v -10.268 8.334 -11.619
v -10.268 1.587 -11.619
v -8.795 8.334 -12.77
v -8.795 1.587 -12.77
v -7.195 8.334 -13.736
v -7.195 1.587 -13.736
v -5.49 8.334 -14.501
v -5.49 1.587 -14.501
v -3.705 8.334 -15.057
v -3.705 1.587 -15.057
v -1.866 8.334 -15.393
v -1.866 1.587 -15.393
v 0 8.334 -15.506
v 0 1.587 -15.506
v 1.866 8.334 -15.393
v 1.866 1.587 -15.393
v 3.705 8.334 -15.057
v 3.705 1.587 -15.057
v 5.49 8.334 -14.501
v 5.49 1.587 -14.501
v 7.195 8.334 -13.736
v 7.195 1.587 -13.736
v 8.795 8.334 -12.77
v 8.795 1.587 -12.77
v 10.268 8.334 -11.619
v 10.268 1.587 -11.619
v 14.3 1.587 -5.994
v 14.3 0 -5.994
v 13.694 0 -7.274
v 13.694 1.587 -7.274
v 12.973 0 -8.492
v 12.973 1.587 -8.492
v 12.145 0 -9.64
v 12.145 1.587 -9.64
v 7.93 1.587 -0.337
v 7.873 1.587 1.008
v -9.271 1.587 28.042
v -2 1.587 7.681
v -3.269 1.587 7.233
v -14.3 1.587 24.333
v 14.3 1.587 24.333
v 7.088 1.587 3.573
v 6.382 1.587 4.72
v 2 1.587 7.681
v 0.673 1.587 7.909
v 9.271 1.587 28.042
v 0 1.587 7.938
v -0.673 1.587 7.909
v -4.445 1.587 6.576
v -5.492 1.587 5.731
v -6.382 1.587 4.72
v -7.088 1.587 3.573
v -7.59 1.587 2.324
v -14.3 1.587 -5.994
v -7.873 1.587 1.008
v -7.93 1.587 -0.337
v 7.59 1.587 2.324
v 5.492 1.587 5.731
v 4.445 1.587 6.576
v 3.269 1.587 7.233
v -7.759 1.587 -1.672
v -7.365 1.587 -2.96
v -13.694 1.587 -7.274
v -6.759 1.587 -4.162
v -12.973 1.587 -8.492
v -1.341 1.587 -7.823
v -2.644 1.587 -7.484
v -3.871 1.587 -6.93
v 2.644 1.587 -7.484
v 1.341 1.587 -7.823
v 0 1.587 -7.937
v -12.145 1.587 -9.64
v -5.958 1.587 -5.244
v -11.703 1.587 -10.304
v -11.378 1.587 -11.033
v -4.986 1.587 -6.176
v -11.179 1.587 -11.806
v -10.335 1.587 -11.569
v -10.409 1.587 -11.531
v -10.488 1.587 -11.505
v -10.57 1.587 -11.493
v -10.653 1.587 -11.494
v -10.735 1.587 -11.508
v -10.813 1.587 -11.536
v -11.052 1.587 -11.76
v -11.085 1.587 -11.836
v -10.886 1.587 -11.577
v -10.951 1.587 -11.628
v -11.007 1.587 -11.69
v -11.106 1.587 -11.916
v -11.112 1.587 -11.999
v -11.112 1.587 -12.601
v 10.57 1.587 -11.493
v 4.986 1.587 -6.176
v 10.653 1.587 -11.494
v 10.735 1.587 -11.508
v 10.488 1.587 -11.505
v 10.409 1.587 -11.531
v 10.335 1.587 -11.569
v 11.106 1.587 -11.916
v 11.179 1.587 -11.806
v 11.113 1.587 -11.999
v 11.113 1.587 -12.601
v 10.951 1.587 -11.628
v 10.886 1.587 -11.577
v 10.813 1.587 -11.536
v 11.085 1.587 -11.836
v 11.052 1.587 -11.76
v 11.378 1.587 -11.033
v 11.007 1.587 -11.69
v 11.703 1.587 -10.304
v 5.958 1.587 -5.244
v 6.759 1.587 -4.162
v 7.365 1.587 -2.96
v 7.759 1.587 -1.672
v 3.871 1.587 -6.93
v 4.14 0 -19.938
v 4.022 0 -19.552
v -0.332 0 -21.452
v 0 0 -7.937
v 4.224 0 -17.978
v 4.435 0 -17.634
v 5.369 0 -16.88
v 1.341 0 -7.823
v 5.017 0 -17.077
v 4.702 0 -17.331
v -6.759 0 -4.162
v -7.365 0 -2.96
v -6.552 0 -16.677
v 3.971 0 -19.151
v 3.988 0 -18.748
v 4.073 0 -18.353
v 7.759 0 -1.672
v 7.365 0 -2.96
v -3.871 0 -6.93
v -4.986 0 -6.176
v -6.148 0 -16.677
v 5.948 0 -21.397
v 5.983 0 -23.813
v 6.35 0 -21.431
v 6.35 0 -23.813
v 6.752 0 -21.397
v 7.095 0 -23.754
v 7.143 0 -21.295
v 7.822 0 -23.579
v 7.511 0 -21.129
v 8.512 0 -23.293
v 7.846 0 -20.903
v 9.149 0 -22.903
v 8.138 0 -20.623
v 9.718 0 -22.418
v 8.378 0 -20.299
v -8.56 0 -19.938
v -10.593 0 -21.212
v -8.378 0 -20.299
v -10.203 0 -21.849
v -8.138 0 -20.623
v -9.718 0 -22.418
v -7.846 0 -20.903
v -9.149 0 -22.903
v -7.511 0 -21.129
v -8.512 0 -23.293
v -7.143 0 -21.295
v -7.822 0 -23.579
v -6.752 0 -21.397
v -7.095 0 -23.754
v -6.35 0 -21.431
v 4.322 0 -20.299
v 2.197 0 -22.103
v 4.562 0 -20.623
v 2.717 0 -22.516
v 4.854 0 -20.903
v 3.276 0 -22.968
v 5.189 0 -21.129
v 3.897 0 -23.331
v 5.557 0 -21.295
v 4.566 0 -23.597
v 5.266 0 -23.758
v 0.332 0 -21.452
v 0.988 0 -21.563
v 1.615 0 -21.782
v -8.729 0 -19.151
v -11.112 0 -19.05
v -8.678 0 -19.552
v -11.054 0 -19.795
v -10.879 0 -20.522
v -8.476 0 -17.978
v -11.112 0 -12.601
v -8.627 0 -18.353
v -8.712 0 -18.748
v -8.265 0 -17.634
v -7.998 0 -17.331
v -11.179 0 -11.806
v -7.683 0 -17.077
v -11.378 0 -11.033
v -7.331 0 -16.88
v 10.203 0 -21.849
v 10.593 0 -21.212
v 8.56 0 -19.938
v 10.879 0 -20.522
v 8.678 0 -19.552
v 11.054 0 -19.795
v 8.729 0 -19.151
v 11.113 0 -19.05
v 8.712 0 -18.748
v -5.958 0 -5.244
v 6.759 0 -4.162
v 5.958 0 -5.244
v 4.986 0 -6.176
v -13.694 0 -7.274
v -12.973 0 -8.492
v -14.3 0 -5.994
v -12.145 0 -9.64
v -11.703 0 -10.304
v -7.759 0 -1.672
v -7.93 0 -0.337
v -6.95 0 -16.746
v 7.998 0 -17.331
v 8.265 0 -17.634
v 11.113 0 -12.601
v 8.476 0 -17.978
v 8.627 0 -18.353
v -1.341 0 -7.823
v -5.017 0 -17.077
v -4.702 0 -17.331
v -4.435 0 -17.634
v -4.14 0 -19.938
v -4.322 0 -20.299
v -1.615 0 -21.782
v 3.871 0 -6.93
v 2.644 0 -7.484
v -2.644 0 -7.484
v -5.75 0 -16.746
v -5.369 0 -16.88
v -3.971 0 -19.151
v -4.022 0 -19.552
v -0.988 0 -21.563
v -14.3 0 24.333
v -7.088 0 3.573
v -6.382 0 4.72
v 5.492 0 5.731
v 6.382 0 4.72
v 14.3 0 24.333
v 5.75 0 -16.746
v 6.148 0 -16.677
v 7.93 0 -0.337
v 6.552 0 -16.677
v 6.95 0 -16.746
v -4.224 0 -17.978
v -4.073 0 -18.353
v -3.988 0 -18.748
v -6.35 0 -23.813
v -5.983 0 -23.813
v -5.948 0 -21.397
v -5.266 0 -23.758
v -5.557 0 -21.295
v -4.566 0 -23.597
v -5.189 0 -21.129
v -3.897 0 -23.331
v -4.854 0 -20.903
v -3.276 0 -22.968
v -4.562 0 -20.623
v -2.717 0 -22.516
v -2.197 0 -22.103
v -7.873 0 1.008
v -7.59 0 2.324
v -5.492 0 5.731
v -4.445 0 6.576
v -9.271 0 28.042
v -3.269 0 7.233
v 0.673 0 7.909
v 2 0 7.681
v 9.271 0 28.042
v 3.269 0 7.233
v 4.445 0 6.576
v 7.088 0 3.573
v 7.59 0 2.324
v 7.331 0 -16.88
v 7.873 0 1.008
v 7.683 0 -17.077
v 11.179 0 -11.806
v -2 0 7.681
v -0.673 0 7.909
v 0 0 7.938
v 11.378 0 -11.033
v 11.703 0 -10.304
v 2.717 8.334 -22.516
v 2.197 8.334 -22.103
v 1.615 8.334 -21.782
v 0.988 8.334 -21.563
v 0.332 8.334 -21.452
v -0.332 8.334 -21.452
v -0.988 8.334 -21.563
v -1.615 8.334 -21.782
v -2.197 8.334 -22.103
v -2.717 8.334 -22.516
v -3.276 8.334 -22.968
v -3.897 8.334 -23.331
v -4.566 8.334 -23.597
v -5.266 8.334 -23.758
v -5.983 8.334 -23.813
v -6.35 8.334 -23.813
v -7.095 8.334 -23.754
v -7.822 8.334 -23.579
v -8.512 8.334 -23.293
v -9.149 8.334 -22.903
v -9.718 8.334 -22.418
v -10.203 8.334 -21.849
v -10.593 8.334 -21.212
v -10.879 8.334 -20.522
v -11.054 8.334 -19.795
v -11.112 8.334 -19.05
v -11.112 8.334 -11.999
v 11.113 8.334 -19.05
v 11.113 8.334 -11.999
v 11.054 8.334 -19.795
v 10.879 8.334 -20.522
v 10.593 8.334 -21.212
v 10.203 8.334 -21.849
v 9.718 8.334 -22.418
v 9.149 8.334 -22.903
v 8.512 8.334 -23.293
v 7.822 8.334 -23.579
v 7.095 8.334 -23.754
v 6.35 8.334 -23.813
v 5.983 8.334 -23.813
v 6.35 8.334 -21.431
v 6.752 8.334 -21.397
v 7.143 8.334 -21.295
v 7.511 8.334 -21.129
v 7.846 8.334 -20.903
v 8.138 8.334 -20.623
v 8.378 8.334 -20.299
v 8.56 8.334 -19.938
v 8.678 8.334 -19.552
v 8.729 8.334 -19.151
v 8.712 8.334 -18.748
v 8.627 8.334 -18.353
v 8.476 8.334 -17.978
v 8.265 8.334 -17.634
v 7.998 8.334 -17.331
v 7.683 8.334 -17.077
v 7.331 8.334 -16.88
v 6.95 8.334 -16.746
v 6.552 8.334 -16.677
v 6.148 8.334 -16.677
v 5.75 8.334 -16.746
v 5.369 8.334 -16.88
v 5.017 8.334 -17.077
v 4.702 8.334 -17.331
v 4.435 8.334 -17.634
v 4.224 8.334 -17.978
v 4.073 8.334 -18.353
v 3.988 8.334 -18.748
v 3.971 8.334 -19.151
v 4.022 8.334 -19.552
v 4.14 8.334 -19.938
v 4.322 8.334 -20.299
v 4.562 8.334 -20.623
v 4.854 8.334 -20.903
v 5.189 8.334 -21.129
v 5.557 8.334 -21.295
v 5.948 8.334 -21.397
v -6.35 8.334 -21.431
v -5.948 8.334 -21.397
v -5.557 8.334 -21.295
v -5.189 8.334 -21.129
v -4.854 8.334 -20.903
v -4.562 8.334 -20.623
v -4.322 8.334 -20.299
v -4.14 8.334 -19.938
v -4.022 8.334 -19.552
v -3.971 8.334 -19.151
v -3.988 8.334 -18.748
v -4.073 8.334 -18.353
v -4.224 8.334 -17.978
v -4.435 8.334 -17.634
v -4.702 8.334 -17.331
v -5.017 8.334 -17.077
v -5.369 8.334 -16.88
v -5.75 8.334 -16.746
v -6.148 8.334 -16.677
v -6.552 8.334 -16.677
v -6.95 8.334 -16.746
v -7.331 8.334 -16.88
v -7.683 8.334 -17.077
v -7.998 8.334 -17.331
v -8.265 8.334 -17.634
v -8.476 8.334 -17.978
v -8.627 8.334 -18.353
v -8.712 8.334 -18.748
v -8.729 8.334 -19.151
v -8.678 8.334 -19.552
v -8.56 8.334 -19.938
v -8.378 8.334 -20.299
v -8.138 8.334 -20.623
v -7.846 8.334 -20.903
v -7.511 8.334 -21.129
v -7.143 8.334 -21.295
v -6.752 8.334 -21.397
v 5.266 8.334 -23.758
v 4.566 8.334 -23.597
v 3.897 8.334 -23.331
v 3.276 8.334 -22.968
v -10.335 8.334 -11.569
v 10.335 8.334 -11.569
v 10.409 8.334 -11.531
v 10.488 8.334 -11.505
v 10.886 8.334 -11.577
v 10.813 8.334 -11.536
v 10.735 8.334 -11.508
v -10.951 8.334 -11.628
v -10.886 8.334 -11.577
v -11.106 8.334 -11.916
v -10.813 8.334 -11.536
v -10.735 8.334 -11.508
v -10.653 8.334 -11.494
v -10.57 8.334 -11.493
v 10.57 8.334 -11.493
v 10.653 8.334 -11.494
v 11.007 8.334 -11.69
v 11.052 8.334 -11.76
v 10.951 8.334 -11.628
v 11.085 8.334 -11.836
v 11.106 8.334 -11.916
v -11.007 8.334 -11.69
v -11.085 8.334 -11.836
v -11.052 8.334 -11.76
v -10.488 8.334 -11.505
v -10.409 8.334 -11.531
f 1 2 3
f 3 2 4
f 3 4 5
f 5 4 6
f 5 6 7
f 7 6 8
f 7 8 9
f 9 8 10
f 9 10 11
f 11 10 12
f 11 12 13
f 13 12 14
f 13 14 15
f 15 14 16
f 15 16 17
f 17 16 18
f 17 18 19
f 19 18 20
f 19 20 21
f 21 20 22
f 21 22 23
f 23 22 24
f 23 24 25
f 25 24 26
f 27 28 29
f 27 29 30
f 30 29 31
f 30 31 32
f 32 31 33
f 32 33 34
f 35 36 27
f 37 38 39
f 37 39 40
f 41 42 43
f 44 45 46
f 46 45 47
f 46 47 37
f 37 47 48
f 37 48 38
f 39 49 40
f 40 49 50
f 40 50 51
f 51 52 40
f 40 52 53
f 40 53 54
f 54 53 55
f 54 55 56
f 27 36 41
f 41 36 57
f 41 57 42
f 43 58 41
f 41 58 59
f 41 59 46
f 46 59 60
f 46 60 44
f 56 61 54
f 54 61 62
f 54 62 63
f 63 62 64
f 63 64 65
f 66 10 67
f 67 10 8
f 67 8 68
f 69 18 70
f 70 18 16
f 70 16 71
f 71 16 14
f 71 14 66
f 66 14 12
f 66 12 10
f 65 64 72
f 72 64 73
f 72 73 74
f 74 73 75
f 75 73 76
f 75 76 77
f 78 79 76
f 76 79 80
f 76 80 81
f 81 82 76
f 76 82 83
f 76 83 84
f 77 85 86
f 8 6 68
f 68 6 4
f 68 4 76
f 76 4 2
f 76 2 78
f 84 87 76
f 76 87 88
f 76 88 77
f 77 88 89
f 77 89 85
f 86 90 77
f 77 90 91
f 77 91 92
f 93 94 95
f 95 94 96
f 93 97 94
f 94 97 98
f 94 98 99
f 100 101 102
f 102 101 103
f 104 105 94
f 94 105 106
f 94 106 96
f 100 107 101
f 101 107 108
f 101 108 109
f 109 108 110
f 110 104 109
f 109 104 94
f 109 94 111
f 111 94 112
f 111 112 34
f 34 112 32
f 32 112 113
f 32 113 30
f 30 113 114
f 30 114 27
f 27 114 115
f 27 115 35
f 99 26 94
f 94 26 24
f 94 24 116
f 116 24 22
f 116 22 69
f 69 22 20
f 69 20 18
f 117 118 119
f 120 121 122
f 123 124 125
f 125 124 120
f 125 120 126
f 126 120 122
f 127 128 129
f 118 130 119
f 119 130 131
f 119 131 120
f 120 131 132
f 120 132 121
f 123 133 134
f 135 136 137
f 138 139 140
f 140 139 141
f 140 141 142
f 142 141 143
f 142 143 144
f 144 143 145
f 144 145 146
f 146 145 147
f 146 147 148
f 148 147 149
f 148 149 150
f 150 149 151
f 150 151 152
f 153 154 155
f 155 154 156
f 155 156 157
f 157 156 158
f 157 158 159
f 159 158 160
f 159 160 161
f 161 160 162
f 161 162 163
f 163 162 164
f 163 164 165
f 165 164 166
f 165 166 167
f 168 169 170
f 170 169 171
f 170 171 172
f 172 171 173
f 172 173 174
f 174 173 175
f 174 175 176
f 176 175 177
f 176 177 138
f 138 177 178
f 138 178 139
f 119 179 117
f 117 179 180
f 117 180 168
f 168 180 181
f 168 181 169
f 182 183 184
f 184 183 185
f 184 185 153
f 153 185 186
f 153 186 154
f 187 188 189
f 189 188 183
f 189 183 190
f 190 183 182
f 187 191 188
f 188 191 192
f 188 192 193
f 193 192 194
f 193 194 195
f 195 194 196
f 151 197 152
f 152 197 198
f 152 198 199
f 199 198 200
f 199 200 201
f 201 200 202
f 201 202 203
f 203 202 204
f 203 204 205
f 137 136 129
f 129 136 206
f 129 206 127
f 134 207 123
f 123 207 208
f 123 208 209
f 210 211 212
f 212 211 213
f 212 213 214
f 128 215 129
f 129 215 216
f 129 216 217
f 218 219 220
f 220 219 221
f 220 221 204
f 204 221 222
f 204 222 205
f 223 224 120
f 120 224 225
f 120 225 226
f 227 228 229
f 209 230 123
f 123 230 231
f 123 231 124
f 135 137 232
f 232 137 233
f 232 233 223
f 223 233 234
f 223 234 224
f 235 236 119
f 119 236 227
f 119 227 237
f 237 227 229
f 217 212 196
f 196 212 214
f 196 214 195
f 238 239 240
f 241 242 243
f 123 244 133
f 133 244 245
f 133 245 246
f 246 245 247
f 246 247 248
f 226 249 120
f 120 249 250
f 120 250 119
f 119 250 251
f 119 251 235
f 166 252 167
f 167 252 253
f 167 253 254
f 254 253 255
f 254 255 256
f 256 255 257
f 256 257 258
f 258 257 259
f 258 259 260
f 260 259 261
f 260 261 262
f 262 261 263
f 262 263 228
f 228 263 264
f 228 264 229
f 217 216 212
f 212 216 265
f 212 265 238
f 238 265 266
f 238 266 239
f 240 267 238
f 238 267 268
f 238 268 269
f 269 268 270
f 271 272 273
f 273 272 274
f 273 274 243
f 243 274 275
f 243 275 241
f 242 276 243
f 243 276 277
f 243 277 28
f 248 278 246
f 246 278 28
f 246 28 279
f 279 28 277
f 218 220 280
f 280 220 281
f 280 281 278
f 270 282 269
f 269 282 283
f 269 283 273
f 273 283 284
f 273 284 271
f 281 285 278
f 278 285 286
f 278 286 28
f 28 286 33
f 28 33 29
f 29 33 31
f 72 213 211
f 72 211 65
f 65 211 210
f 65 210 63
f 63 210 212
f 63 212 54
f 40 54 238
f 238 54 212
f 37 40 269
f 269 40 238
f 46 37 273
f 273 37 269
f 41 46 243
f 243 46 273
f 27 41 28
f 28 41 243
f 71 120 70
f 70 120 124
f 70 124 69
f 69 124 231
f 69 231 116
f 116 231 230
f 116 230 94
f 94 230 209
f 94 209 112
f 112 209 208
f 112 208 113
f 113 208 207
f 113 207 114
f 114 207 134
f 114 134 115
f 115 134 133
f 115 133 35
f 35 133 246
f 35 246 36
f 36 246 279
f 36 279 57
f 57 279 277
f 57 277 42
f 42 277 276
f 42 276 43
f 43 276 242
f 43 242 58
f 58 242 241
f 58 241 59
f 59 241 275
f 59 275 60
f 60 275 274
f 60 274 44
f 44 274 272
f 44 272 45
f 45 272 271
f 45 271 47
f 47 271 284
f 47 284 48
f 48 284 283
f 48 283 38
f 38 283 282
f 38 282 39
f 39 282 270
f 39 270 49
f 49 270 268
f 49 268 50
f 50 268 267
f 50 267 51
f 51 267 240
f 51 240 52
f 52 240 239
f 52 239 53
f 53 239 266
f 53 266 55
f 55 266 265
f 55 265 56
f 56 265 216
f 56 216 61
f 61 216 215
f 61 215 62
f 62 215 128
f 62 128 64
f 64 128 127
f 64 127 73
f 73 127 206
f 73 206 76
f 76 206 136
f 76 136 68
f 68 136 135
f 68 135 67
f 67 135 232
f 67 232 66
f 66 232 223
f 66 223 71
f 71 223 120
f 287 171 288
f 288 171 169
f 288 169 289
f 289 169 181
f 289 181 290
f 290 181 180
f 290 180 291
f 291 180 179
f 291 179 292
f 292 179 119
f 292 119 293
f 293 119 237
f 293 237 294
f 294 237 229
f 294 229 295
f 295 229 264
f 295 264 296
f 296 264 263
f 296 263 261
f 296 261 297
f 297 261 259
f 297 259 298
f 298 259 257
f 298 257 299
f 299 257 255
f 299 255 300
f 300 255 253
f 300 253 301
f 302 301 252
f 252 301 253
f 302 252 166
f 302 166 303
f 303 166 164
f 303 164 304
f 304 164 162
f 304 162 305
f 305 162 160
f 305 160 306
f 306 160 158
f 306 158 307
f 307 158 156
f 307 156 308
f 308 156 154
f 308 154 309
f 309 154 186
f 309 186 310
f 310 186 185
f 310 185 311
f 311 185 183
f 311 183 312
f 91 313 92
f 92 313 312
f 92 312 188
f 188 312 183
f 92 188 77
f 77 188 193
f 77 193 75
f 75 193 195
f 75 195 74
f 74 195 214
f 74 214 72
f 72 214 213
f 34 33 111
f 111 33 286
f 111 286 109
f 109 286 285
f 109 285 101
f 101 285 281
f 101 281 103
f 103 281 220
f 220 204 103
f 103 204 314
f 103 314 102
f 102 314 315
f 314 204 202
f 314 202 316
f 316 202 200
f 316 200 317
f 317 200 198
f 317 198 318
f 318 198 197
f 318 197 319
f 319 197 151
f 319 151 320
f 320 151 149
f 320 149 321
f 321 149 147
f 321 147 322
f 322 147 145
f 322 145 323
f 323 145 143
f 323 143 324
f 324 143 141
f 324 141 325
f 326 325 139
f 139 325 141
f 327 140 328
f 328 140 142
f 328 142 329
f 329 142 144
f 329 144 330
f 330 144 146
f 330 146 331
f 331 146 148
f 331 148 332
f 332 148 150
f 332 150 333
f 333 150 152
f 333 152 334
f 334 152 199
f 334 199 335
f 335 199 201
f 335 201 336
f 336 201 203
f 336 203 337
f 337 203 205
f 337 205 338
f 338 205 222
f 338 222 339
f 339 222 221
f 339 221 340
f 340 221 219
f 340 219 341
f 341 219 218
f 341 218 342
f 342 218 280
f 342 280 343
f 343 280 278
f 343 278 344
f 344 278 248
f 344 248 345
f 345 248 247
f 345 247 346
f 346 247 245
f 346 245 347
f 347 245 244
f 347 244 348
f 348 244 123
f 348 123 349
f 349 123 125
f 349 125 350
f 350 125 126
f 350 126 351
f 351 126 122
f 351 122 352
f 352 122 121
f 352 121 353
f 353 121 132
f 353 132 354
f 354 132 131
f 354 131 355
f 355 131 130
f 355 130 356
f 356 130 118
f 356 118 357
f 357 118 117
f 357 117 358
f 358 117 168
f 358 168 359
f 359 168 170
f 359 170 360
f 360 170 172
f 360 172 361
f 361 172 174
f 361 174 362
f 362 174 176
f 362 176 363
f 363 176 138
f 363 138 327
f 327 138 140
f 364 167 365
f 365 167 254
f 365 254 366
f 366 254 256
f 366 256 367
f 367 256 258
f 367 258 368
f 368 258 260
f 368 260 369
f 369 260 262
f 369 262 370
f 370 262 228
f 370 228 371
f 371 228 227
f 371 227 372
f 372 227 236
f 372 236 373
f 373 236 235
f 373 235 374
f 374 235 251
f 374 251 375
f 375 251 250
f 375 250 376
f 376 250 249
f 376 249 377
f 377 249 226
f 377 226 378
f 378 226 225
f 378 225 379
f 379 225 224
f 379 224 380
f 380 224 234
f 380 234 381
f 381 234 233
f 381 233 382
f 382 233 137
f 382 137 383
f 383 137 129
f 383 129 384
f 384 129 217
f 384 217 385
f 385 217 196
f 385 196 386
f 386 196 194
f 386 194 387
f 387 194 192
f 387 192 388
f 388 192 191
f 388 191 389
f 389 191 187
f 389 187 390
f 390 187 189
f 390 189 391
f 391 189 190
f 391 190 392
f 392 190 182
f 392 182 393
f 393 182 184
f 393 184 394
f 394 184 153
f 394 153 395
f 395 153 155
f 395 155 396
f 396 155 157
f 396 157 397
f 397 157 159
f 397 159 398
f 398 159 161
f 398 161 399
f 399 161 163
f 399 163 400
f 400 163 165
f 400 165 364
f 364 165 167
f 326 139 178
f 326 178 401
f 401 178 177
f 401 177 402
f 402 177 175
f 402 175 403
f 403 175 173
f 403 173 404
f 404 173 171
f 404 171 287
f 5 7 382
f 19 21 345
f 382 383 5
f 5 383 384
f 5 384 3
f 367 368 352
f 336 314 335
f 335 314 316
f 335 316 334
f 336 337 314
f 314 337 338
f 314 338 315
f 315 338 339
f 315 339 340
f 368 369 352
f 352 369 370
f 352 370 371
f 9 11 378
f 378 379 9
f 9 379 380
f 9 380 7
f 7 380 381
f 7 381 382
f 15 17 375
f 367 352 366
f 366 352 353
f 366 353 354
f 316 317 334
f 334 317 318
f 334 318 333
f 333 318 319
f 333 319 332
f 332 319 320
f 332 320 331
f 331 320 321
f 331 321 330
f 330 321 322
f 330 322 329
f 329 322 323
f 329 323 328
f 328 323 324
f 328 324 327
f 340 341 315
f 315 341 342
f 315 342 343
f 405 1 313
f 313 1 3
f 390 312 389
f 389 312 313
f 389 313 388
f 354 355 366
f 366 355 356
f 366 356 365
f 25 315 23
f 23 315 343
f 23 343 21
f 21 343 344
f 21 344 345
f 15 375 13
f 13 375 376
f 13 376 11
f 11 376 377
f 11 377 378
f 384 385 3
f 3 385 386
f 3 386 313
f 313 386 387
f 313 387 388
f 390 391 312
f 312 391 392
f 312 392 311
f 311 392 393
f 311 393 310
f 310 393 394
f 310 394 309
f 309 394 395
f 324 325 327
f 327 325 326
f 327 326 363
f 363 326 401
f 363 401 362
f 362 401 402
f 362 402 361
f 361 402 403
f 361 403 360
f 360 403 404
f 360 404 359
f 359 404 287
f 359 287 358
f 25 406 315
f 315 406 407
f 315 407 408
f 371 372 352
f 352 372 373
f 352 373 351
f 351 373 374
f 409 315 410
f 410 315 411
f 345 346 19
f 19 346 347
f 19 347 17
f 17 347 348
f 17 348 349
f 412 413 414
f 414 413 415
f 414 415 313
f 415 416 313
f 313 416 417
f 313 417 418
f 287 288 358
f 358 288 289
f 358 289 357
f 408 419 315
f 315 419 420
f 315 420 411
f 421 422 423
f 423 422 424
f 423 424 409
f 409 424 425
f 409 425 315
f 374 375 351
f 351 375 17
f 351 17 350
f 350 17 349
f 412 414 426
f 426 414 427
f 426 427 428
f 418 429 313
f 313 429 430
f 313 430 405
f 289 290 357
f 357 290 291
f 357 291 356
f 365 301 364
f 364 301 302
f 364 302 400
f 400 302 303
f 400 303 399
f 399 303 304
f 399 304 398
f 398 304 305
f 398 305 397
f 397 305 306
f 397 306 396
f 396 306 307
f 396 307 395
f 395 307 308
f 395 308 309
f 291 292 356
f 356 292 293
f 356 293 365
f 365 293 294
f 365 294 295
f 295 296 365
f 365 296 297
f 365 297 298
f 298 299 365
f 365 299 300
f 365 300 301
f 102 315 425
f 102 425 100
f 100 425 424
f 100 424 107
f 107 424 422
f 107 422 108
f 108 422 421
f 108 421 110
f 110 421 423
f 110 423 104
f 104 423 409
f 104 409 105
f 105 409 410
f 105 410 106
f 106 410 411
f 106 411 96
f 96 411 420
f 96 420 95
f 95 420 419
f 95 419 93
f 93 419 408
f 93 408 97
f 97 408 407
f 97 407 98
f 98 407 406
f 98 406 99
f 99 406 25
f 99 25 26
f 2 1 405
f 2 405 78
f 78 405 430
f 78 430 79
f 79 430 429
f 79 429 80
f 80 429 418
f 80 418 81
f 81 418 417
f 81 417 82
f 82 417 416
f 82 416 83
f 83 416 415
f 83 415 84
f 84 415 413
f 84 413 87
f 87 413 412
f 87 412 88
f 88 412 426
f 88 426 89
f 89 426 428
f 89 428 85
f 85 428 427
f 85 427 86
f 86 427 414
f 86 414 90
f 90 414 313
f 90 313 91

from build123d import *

# Parameters (mm, degrees)
SKETCH1_R           = 7.9375
BOSS_EXTRUDE1_DEPTH = 1.5875
SKETCH2_R           = 2.38125
BOSS_EXTRUDE2_DEPTH = 8.334375
CUT_EXTRUDE1_START  = -6.746875
CUT_EXTRUDE1_DEPTH  = 6.746875


with BuildPart() as part:
    # Sketch1 → Boss-Extrude1 (new body)
    with BuildSketch(Plane(origin=(0, 0, 0), x_dir=(1, 0, 0), z_dir=(0, 1, 0))):
        with BuildLine():
            Line((-14.3002, -24.3332), (-9.271, -28.0416))
            Line((-9.271, -28.0416), (9.271, -28.0416))
            Line((9.271, -28.0416), (14.3002, -24.3332))
            Line((14.3002, -24.3332), (14.3002, 5.9944))
            ThreePointArc((14.3002, 5.9944), (0, 15.505758653), (-14.3002, 5.9944))
            Line((-14.3002, 5.9944), (-14.3002, -24.3332))
        make_face()
        with Locations(Location((0, 0, 0), (0, 0, 270))):
            Circle(SKETCH1_R, mode=Mode.SUBTRACT)
    extrude(amount=BOSS_EXTRUDE1_DEPTH)

    # Sketch2 → Boss-Extrude2 (add)
    with BuildSketch(Plane.XZ):
        with BuildLine():
            Line((-11.1125, -12.601058837), (-11.1125, -19.05))
            ThreePointArc((-11.1125, -19.05), (-9.717596045, -22.417596045), (-6.35, -23.8125))
            Line((-6.35, -23.8125), (-5.983425441, -23.8125))
            ThreePointArc((-5.983425441, -23.8125), (-4.22646321, -23.476566386), (-2.717363519, -22.516157205))
            ThreePointArc((-2.717363519, -22.516157205), (0, -21.4376), (2.717363519, -22.516157205))
            ThreePointArc((2.717363519, -22.516157205), (4.22646321, -23.476566386), (5.983425441, -23.8125))
            Line((5.983425441, -23.8125), (6.35, -23.8125))
            ThreePointArc((6.35, -23.8125), (9.717596045, -22.417596045), (11.1125, -19.05))
            Line((11.1125, -19.05), (11.1125, -12.601058837))
            ThreePointArc((11.1125, -12.601058837), (11.377973728, -11.033206497), (12.144798566, -9.640146223))
            ThreePointArc((12.144798566, -9.640146223), (0, -15.505758653), (-12.144798566, -9.640146223))
            ThreePointArc((-12.144798566, -9.640146223), (-11.377973728, -11.033206497), (-11.1125, -12.601058837))
        make_face()
        with Locations(Location((-6.35, -19.05, 0), (0, 0, 270))):
            Circle(SKETCH2_R, mode=Mode.SUBTRACT)
        with Locations(Location((6.35, -19.05, 0), (0, 0, 270))):
            Circle(SKETCH2_R, mode=Mode.SUBTRACT)
    extrude(amount=-BOSS_EXTRUDE2_DEPTH)

    # Sketch3 → Cut-Extrude1 (cut)
    with BuildSketch(Plane(origin=(0, 8.334375, 0), x_dir=(1, 0, 0), z_dir=(0, 1, 0)).offset(CUT_EXTRUDE1_START)):
        with BuildLine():
            Line((-11.1125, 19.05), (-11.1125, 11.999376898))
            ThreePointArc((-11.1125, 11.999376898), (-10.813271374, 11.536258648), (-10.268096404, 11.618724011))
            ThreePointArc((-10.268096404, 11.618724011), (0, 15.505758653), (10.268096404, 11.618724011))
            ThreePointArc((10.268096404, 11.618724011), (10.813271374, 11.536258648), (11.1125, 11.999376898))
            Line((11.1125, 11.999376898), (11.1125, 19.05))
            Line((11.1125, 19.05), (16.416178114, 6.350325815))
            Line((16.416178114, 6.350325815), (-16.620971452, 6.890442702))
            Line((-16.620971452, 6.890442702), (-11.1125, 19.05))
        make_face()
    extrude(amount=CUT_EXTRUDE1_DEPTH, mode=Mode.SUBTRACT)


solid = part.part
